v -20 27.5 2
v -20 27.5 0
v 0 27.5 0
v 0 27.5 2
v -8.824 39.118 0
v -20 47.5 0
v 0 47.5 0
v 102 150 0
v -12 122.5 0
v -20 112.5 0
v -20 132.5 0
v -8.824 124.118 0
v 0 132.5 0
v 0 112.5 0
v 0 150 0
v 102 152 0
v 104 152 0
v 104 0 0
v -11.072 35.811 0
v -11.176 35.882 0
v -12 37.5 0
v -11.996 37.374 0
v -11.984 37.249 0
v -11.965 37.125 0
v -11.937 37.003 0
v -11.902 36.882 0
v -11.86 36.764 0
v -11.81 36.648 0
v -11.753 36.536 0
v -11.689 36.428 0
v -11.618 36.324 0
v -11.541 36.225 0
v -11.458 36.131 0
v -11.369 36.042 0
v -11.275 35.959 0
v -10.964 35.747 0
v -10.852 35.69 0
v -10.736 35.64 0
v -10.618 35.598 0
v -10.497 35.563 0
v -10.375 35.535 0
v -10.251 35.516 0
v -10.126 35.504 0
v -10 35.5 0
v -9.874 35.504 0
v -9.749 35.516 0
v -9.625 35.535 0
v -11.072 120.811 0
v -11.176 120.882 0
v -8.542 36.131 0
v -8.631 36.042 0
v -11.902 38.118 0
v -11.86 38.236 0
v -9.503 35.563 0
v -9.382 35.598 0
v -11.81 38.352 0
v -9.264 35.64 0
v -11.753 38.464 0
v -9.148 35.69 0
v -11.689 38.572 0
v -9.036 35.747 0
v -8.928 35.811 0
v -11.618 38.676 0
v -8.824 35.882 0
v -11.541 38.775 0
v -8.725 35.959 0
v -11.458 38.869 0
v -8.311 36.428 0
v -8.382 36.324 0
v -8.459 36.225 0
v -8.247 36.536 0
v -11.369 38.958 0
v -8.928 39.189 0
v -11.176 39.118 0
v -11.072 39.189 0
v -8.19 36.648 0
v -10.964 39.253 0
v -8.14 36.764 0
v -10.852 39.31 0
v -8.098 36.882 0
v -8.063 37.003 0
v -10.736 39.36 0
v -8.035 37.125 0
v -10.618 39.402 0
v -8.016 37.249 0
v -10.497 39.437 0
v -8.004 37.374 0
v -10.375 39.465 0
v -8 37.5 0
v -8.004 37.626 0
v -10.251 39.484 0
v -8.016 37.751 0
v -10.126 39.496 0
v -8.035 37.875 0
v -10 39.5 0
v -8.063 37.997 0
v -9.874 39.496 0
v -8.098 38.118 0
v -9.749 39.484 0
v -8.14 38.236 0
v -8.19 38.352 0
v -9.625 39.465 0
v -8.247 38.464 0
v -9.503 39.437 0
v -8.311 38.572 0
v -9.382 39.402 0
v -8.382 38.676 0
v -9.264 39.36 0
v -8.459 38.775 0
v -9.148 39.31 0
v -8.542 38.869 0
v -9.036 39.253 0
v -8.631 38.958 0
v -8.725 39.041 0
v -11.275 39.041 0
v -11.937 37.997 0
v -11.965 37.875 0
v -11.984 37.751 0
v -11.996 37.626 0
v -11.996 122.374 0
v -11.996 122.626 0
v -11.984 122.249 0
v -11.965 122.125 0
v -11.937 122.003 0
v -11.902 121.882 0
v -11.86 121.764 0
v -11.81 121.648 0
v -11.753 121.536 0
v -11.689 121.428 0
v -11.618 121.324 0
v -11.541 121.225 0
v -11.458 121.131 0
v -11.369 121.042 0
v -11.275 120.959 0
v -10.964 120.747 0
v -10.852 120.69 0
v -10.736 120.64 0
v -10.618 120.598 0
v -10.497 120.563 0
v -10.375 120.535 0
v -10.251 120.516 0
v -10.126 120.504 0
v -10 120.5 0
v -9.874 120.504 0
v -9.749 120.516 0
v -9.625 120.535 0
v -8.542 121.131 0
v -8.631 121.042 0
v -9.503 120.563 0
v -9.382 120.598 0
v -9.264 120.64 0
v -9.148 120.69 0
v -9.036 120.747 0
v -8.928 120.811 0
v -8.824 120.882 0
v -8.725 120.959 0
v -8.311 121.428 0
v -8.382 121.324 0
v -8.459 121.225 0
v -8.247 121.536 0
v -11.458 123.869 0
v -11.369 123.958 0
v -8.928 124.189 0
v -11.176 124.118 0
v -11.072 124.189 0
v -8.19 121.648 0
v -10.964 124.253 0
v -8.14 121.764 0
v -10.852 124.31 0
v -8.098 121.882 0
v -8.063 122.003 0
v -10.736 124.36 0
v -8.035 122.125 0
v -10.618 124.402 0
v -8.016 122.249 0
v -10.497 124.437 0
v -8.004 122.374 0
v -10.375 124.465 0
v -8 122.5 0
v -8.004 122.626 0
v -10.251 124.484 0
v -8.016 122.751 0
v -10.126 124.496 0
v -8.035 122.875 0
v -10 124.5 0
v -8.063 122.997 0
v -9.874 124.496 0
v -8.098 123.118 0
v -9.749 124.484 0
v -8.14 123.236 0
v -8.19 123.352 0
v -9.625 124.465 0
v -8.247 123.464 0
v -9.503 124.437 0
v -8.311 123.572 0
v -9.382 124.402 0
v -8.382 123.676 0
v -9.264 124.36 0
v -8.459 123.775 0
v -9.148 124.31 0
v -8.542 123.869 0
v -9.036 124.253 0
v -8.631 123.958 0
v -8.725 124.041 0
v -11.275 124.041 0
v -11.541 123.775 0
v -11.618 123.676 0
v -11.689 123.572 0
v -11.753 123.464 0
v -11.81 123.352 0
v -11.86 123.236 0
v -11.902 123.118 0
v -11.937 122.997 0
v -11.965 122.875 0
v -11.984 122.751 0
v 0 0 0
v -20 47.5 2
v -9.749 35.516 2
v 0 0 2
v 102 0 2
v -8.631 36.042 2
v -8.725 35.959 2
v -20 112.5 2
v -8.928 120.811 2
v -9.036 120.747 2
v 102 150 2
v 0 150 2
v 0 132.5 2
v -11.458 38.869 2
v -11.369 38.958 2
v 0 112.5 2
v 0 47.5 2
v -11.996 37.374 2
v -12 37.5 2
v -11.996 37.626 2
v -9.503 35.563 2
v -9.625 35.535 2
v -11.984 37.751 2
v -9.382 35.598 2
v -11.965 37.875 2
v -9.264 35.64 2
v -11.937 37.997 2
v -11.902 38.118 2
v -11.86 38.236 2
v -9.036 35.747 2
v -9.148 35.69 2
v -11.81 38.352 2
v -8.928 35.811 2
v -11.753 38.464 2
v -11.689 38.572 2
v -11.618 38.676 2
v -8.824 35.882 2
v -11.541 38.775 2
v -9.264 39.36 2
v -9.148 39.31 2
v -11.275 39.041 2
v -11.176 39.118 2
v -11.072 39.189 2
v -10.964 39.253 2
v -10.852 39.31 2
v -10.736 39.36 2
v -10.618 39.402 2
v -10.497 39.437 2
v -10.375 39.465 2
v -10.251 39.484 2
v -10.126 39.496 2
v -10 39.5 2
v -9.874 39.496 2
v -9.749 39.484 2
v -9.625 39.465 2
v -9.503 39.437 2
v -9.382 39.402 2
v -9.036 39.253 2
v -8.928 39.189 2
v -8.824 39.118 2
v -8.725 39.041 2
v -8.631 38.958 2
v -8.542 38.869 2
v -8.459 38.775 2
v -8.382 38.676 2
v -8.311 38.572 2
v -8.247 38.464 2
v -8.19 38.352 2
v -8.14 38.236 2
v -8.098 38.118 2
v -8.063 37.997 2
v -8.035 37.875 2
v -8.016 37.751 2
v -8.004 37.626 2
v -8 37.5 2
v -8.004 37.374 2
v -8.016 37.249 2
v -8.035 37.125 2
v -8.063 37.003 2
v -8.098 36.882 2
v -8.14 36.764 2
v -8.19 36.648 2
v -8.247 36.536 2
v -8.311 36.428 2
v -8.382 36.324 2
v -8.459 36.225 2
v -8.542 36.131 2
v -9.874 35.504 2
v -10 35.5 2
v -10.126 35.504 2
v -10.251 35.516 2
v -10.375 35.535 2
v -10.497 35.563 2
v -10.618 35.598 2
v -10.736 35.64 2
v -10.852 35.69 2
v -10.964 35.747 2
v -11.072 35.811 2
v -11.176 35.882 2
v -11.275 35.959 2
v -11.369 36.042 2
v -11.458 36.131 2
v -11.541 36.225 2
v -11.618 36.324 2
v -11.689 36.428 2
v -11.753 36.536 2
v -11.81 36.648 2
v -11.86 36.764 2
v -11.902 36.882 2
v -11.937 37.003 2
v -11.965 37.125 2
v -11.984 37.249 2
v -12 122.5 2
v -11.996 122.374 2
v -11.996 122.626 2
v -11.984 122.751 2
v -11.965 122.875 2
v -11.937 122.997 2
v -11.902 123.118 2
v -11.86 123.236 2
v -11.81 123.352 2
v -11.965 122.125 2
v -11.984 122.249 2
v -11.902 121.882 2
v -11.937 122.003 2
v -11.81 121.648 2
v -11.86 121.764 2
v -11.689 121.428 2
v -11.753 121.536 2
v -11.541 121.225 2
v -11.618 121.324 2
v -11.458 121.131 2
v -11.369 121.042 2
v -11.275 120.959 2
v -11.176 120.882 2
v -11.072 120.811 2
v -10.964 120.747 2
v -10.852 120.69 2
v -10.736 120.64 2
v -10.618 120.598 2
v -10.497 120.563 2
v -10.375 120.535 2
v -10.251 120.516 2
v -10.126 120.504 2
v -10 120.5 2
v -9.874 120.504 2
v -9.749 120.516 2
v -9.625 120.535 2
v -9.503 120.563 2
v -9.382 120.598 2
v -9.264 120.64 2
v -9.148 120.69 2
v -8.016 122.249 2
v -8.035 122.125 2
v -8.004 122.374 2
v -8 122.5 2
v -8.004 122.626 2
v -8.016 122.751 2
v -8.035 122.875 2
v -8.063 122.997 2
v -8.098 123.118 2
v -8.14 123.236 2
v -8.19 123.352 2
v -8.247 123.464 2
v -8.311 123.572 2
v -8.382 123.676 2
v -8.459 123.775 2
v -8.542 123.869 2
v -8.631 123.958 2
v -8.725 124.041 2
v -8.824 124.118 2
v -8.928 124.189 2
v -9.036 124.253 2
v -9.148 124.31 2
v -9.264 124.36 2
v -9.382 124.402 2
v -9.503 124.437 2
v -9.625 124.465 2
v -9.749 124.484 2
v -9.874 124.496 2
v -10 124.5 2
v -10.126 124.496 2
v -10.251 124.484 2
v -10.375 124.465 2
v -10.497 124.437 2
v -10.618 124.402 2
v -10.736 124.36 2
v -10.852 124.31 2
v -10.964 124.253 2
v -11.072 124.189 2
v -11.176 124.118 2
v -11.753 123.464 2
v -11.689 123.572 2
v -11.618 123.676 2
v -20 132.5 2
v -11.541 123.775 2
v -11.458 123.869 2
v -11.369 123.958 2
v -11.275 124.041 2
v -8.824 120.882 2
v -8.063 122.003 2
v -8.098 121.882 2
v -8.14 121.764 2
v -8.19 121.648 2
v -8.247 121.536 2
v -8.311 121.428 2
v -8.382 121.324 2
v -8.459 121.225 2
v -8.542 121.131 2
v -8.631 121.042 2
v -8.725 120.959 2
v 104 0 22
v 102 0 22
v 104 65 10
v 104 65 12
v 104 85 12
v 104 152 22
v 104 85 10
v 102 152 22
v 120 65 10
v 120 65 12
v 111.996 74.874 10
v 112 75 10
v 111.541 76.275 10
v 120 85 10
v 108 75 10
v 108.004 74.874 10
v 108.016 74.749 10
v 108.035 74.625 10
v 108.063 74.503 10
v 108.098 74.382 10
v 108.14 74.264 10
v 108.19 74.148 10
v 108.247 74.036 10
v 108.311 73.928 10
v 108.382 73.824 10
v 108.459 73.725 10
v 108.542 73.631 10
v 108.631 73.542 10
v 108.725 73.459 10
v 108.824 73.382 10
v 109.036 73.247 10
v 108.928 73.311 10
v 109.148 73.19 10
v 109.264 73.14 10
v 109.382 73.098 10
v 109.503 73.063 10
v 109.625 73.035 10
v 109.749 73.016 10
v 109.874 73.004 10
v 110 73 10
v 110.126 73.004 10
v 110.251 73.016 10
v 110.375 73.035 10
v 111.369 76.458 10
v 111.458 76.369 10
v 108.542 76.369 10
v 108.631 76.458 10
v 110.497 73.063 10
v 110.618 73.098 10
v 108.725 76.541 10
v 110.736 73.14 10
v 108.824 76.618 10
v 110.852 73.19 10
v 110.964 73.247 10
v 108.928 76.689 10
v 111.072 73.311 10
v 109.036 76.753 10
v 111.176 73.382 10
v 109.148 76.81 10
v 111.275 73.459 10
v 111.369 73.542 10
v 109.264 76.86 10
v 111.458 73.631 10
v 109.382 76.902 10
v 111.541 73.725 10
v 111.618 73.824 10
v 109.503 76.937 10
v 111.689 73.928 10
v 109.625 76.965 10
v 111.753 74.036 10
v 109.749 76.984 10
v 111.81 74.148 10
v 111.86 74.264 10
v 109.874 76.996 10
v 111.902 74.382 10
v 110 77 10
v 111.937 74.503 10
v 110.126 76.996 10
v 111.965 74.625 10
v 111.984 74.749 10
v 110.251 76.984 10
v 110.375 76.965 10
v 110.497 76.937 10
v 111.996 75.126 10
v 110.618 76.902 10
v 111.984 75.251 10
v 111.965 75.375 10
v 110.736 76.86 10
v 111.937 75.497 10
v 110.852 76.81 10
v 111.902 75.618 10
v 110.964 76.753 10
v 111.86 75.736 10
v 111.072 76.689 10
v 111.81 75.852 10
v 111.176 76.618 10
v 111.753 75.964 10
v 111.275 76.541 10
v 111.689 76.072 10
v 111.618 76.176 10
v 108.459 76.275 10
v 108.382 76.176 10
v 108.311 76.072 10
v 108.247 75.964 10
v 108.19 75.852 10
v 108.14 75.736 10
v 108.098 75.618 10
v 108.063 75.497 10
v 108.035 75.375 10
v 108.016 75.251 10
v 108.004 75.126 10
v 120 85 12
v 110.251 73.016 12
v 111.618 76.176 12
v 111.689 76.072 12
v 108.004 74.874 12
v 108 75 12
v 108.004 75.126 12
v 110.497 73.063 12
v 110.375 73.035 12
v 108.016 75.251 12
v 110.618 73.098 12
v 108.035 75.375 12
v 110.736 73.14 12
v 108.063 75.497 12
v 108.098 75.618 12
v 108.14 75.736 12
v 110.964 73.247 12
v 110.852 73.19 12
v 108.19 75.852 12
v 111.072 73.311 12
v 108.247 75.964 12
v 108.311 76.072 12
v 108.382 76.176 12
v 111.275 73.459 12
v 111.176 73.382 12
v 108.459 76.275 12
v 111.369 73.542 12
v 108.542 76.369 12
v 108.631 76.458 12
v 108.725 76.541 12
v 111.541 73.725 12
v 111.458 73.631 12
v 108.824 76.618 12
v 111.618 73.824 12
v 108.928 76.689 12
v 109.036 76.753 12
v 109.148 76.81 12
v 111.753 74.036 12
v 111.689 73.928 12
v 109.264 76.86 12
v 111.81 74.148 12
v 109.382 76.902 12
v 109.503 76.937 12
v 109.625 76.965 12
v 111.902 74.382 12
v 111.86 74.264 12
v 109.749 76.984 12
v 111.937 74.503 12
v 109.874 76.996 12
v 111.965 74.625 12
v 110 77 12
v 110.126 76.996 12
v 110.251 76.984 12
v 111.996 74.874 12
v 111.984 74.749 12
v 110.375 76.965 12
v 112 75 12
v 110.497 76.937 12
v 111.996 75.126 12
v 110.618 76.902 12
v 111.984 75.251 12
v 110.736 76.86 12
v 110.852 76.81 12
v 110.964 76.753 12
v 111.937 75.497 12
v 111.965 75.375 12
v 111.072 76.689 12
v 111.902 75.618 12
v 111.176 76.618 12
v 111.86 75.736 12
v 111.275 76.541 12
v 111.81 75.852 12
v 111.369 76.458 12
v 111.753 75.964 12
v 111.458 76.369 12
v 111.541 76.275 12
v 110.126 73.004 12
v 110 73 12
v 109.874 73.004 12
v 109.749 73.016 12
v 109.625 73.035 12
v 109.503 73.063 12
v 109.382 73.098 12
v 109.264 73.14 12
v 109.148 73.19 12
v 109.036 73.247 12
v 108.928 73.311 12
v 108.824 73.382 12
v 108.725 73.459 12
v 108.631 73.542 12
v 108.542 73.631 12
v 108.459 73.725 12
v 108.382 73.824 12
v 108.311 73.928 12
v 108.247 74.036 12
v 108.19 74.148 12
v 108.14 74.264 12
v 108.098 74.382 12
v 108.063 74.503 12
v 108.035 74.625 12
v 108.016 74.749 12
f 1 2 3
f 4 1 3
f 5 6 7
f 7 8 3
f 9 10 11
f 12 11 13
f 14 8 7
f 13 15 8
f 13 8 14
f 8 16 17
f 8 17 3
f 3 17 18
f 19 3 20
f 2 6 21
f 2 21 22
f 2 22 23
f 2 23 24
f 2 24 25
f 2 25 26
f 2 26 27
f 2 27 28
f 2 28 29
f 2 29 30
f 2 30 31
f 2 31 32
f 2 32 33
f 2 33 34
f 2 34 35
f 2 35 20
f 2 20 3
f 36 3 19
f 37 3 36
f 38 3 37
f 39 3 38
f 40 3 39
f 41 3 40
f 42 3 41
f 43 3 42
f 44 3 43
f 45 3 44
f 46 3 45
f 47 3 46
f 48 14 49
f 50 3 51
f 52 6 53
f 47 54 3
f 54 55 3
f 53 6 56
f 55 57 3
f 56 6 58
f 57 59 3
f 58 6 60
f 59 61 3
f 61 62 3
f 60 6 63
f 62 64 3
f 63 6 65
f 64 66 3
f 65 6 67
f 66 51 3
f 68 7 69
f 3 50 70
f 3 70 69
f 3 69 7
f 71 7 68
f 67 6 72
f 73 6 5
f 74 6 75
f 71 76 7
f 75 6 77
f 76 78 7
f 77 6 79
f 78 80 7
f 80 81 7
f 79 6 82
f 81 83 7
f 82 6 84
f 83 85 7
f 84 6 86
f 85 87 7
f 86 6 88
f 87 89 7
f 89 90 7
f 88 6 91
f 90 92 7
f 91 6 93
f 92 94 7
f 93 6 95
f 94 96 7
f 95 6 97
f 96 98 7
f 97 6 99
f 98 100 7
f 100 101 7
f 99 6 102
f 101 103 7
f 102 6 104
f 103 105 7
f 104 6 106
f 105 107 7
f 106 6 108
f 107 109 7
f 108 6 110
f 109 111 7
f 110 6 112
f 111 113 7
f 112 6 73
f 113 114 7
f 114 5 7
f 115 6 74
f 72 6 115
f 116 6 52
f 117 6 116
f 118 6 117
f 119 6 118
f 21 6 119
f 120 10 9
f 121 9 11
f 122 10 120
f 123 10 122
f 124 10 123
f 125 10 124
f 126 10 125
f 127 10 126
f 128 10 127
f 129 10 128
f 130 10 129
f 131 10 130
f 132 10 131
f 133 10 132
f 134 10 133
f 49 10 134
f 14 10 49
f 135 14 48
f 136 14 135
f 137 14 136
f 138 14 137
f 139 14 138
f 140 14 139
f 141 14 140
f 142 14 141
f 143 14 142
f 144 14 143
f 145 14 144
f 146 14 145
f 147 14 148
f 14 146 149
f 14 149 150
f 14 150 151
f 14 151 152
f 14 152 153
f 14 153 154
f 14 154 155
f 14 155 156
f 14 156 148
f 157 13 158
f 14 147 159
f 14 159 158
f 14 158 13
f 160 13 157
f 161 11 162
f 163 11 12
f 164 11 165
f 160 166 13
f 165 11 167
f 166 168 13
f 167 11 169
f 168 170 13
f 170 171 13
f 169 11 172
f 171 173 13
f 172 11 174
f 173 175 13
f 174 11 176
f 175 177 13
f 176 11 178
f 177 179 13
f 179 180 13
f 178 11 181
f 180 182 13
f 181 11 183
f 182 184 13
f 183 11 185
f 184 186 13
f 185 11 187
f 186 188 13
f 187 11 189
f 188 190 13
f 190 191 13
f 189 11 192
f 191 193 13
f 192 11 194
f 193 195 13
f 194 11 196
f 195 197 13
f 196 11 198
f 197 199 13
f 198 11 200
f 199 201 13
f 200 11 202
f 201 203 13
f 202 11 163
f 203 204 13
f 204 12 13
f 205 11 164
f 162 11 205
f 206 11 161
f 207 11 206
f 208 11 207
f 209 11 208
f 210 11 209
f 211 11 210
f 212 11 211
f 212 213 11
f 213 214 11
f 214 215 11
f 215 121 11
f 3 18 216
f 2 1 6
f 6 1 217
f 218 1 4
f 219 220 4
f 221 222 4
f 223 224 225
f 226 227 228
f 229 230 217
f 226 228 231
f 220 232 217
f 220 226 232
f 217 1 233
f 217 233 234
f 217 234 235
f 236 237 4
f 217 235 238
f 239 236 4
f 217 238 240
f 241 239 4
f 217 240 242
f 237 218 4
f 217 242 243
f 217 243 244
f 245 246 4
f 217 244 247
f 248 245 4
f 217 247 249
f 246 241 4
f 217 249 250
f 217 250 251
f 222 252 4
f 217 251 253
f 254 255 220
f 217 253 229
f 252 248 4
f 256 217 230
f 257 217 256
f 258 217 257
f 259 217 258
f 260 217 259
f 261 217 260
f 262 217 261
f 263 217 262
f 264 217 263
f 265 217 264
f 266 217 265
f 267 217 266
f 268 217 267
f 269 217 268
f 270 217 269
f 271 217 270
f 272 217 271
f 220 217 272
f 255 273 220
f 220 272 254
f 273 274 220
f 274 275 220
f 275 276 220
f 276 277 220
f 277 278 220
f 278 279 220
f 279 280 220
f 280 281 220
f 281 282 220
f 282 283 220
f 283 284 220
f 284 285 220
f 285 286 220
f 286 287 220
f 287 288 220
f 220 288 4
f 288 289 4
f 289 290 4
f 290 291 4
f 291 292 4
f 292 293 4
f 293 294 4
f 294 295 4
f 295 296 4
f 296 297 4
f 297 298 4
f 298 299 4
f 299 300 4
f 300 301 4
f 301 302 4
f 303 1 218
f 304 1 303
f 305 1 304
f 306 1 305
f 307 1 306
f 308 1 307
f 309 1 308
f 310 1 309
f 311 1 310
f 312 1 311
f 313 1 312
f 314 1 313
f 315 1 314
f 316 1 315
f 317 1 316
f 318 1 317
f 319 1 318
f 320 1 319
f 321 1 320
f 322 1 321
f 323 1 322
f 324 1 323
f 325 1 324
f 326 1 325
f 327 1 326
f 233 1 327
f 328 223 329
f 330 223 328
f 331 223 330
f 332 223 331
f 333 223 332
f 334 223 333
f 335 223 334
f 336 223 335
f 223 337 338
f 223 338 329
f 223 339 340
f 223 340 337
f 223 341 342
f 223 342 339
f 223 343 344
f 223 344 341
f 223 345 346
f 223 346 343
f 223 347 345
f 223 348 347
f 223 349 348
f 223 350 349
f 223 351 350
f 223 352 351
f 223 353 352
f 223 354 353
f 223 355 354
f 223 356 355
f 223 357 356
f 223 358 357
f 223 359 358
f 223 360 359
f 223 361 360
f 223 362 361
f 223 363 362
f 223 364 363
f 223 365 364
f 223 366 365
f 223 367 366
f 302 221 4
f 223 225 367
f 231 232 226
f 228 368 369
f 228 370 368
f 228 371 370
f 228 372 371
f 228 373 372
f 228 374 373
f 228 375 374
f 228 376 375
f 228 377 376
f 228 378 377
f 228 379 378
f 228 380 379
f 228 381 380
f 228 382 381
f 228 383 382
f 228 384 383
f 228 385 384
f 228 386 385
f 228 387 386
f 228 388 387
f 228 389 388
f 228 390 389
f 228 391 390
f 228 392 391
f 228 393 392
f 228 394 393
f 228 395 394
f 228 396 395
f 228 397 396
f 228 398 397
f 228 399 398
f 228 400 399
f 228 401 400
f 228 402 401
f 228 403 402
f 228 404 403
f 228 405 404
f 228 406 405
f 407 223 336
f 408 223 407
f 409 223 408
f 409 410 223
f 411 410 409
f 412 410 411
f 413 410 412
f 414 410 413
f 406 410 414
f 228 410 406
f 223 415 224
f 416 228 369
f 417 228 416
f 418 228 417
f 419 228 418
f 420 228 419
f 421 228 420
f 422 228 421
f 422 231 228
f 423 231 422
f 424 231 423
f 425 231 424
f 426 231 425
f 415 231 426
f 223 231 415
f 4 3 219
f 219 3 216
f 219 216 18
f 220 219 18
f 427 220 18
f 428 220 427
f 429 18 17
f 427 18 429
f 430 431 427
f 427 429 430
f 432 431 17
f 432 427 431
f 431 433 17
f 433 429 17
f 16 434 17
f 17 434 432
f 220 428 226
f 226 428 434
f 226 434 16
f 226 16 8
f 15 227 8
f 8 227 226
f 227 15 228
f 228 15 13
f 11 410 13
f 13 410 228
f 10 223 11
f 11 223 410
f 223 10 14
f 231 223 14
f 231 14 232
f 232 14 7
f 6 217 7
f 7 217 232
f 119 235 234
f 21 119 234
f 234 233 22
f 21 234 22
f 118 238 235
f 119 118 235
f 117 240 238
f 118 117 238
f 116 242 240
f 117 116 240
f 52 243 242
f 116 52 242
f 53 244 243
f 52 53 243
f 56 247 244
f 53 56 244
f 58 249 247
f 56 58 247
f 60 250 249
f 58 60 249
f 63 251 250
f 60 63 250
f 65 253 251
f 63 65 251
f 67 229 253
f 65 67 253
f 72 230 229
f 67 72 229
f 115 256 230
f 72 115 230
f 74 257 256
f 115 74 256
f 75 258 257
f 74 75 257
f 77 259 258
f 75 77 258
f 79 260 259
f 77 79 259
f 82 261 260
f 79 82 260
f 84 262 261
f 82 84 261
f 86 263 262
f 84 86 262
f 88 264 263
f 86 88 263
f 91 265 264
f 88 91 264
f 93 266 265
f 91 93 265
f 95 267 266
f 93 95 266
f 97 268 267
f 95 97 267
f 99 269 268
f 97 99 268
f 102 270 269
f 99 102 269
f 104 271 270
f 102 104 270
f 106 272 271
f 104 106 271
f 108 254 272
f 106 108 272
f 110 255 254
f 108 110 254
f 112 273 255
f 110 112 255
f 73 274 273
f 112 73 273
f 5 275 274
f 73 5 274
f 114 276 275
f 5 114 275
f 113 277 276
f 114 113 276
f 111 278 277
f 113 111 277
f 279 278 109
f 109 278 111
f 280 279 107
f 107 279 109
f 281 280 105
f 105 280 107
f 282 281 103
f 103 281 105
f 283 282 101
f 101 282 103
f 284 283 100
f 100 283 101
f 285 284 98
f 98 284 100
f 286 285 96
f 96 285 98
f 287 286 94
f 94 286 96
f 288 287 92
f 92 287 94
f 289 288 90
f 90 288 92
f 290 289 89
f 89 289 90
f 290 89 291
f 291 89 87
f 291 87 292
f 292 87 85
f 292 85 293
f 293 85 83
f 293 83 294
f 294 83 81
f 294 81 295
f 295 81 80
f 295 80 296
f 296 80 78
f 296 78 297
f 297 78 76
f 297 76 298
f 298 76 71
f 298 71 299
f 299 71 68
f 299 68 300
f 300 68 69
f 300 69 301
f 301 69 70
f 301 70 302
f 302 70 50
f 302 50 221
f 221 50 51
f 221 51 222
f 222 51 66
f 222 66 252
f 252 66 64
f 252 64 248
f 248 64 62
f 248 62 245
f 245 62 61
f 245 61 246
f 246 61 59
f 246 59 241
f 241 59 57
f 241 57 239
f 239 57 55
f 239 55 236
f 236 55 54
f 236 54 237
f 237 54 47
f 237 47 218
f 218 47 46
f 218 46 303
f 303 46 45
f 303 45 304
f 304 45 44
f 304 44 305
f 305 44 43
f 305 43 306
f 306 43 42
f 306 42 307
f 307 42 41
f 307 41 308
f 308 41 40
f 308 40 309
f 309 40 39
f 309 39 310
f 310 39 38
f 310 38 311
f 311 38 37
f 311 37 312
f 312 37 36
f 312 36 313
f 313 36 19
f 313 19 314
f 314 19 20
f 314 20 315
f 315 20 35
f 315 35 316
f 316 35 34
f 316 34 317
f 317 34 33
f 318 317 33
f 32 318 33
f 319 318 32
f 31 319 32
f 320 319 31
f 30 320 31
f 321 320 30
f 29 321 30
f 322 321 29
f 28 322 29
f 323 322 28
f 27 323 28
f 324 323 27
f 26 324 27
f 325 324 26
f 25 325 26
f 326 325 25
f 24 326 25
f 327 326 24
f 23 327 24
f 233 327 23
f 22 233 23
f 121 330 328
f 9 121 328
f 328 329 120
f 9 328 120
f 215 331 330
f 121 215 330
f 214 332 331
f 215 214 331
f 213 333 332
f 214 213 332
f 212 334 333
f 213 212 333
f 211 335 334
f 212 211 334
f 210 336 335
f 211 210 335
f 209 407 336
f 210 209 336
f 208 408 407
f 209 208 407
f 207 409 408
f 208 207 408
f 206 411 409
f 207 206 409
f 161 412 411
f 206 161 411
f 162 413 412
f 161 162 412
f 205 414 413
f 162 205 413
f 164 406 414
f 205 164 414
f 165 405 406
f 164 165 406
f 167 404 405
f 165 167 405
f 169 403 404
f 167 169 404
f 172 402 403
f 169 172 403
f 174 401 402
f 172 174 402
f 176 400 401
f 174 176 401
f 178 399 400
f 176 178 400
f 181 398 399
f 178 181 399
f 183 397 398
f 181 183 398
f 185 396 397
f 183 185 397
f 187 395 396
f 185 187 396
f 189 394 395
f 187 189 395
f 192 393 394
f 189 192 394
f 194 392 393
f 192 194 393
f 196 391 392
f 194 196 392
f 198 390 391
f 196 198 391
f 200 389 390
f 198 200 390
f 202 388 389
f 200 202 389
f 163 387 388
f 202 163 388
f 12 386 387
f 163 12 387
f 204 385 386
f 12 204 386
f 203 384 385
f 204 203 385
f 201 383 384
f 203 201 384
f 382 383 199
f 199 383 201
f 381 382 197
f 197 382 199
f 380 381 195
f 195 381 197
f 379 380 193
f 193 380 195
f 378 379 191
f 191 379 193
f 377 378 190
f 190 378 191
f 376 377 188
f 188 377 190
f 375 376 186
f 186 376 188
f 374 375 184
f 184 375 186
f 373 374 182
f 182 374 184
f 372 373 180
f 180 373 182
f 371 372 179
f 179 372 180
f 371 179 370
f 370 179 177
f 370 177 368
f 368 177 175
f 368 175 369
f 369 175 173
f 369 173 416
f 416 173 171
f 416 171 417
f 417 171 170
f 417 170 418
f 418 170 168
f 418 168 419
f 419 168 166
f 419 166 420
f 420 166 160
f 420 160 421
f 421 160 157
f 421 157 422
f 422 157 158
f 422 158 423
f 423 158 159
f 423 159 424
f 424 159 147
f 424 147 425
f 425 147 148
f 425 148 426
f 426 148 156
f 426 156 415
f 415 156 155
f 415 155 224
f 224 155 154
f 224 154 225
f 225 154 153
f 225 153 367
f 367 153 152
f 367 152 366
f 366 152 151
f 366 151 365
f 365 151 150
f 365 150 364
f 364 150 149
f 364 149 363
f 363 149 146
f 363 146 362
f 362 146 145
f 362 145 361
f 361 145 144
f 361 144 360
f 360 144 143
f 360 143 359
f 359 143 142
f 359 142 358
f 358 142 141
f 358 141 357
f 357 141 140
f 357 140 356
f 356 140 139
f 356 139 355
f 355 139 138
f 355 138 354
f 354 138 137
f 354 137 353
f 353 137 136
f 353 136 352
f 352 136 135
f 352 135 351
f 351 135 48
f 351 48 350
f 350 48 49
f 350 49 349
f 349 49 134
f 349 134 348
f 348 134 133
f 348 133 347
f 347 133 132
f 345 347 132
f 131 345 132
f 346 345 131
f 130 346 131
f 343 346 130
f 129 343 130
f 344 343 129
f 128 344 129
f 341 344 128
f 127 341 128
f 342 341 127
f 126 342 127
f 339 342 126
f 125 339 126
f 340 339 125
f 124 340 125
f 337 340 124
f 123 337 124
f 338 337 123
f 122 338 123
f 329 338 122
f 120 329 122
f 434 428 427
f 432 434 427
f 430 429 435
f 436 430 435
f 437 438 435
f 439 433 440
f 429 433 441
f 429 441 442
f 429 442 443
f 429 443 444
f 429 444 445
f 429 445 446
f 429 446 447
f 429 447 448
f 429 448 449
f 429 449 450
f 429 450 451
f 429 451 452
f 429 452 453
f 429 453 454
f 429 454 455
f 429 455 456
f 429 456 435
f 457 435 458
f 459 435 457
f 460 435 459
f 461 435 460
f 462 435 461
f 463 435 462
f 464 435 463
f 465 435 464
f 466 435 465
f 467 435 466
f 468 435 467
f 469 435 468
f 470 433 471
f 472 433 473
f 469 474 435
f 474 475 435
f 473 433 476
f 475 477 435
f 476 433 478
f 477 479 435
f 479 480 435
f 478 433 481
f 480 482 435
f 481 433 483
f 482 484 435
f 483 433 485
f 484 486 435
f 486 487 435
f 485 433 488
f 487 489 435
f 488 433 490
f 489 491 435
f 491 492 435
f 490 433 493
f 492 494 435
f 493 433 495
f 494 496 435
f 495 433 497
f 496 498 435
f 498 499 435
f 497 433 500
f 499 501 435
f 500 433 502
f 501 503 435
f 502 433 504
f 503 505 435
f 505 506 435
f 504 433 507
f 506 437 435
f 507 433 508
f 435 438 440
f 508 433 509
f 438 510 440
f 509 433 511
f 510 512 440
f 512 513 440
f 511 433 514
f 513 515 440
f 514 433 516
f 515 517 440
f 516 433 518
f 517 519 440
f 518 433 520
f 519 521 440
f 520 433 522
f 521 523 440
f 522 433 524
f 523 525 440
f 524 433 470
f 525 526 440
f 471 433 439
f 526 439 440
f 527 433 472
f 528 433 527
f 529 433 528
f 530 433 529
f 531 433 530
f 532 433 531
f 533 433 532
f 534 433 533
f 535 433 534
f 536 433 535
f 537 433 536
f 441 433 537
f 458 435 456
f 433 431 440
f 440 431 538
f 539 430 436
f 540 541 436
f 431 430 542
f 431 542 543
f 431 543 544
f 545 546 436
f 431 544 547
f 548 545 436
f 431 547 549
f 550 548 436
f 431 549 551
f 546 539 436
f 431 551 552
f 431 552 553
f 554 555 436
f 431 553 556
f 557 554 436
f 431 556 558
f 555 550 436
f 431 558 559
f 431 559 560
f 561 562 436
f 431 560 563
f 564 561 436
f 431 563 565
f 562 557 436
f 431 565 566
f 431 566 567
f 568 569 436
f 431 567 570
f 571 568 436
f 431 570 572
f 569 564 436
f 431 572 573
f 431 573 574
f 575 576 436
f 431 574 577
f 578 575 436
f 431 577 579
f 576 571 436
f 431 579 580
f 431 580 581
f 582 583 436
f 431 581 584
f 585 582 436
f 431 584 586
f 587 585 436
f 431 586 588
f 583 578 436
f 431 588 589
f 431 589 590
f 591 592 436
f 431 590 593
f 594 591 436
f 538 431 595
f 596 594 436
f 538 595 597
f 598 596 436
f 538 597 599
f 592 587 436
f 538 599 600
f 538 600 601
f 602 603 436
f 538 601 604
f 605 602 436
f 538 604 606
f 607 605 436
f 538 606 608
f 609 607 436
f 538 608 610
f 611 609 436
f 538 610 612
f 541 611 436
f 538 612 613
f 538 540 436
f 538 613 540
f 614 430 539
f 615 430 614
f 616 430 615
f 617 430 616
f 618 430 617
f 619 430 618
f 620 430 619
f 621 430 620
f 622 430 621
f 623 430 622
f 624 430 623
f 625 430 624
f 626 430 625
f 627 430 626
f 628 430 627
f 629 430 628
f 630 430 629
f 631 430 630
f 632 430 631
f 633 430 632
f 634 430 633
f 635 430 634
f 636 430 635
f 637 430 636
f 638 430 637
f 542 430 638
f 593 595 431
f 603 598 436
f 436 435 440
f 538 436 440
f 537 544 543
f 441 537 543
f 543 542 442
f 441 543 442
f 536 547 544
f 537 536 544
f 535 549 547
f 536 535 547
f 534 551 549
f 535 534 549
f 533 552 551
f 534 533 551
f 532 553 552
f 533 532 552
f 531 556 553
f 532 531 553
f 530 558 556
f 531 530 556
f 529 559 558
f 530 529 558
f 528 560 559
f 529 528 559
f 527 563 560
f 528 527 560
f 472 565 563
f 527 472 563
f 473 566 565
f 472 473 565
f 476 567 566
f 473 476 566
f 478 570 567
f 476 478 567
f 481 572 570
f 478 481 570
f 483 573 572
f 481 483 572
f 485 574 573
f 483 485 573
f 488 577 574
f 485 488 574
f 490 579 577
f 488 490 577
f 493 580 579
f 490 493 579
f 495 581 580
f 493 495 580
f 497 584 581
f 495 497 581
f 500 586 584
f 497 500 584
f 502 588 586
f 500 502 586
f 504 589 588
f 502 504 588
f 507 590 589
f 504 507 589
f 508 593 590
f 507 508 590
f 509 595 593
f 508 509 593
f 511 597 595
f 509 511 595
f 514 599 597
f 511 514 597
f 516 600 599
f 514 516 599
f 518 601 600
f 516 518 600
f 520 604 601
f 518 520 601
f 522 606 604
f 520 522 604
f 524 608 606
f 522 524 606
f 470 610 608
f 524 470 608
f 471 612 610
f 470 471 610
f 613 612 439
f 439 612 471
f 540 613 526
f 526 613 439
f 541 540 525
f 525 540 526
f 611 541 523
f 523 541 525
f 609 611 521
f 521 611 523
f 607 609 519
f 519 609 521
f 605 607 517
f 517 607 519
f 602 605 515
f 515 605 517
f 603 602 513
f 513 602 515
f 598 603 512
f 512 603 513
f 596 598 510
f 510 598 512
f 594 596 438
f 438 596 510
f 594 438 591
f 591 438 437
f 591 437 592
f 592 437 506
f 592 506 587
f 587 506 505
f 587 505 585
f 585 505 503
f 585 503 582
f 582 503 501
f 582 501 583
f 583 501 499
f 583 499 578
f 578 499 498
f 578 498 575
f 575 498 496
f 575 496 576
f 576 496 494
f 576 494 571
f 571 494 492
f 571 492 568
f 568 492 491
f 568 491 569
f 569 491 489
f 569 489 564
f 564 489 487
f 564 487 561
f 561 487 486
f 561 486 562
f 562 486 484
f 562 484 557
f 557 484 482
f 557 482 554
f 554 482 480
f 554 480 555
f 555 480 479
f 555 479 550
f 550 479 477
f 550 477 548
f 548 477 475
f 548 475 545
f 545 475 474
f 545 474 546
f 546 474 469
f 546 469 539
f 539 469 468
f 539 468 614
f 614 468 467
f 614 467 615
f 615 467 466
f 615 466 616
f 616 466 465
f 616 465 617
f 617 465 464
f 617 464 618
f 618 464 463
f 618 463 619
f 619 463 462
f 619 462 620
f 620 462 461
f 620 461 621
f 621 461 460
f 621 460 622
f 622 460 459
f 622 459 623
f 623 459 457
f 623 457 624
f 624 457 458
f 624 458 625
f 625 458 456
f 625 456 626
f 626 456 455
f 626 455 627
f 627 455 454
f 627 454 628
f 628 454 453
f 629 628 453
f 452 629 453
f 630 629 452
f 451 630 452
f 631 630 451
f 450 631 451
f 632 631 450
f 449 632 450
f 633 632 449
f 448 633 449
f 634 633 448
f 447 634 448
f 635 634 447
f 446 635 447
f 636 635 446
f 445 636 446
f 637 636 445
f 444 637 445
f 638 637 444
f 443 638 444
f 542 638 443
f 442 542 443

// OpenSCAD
translate([-20,-20+150/2+10-150/4,0]) difference(){cube([20,20,2]);
translate([10,10,-1]) cylinder(h = 10, r1 = 2, r2 = 2, $fn = 100);
};
translate([-20,-20+150/2+20+150/4,0]) difference(){cube([20,20,2]);
translate([10,10,-1]) cylinder(h = 10, r1 = 2, r2 = 2, $fn = 100);
};

cube([102,150,2]);

translate([100+2,0,0]) cube([2,152,20+2]);


translate([-20+120,-20+150/2+10,10]) difference(){translate([2,0,0]) cube([18,20,2]);
translate([10,10,-1]) cylinder(h = 10, r1 = 2, r2 = 2, $fn = 100);
};
